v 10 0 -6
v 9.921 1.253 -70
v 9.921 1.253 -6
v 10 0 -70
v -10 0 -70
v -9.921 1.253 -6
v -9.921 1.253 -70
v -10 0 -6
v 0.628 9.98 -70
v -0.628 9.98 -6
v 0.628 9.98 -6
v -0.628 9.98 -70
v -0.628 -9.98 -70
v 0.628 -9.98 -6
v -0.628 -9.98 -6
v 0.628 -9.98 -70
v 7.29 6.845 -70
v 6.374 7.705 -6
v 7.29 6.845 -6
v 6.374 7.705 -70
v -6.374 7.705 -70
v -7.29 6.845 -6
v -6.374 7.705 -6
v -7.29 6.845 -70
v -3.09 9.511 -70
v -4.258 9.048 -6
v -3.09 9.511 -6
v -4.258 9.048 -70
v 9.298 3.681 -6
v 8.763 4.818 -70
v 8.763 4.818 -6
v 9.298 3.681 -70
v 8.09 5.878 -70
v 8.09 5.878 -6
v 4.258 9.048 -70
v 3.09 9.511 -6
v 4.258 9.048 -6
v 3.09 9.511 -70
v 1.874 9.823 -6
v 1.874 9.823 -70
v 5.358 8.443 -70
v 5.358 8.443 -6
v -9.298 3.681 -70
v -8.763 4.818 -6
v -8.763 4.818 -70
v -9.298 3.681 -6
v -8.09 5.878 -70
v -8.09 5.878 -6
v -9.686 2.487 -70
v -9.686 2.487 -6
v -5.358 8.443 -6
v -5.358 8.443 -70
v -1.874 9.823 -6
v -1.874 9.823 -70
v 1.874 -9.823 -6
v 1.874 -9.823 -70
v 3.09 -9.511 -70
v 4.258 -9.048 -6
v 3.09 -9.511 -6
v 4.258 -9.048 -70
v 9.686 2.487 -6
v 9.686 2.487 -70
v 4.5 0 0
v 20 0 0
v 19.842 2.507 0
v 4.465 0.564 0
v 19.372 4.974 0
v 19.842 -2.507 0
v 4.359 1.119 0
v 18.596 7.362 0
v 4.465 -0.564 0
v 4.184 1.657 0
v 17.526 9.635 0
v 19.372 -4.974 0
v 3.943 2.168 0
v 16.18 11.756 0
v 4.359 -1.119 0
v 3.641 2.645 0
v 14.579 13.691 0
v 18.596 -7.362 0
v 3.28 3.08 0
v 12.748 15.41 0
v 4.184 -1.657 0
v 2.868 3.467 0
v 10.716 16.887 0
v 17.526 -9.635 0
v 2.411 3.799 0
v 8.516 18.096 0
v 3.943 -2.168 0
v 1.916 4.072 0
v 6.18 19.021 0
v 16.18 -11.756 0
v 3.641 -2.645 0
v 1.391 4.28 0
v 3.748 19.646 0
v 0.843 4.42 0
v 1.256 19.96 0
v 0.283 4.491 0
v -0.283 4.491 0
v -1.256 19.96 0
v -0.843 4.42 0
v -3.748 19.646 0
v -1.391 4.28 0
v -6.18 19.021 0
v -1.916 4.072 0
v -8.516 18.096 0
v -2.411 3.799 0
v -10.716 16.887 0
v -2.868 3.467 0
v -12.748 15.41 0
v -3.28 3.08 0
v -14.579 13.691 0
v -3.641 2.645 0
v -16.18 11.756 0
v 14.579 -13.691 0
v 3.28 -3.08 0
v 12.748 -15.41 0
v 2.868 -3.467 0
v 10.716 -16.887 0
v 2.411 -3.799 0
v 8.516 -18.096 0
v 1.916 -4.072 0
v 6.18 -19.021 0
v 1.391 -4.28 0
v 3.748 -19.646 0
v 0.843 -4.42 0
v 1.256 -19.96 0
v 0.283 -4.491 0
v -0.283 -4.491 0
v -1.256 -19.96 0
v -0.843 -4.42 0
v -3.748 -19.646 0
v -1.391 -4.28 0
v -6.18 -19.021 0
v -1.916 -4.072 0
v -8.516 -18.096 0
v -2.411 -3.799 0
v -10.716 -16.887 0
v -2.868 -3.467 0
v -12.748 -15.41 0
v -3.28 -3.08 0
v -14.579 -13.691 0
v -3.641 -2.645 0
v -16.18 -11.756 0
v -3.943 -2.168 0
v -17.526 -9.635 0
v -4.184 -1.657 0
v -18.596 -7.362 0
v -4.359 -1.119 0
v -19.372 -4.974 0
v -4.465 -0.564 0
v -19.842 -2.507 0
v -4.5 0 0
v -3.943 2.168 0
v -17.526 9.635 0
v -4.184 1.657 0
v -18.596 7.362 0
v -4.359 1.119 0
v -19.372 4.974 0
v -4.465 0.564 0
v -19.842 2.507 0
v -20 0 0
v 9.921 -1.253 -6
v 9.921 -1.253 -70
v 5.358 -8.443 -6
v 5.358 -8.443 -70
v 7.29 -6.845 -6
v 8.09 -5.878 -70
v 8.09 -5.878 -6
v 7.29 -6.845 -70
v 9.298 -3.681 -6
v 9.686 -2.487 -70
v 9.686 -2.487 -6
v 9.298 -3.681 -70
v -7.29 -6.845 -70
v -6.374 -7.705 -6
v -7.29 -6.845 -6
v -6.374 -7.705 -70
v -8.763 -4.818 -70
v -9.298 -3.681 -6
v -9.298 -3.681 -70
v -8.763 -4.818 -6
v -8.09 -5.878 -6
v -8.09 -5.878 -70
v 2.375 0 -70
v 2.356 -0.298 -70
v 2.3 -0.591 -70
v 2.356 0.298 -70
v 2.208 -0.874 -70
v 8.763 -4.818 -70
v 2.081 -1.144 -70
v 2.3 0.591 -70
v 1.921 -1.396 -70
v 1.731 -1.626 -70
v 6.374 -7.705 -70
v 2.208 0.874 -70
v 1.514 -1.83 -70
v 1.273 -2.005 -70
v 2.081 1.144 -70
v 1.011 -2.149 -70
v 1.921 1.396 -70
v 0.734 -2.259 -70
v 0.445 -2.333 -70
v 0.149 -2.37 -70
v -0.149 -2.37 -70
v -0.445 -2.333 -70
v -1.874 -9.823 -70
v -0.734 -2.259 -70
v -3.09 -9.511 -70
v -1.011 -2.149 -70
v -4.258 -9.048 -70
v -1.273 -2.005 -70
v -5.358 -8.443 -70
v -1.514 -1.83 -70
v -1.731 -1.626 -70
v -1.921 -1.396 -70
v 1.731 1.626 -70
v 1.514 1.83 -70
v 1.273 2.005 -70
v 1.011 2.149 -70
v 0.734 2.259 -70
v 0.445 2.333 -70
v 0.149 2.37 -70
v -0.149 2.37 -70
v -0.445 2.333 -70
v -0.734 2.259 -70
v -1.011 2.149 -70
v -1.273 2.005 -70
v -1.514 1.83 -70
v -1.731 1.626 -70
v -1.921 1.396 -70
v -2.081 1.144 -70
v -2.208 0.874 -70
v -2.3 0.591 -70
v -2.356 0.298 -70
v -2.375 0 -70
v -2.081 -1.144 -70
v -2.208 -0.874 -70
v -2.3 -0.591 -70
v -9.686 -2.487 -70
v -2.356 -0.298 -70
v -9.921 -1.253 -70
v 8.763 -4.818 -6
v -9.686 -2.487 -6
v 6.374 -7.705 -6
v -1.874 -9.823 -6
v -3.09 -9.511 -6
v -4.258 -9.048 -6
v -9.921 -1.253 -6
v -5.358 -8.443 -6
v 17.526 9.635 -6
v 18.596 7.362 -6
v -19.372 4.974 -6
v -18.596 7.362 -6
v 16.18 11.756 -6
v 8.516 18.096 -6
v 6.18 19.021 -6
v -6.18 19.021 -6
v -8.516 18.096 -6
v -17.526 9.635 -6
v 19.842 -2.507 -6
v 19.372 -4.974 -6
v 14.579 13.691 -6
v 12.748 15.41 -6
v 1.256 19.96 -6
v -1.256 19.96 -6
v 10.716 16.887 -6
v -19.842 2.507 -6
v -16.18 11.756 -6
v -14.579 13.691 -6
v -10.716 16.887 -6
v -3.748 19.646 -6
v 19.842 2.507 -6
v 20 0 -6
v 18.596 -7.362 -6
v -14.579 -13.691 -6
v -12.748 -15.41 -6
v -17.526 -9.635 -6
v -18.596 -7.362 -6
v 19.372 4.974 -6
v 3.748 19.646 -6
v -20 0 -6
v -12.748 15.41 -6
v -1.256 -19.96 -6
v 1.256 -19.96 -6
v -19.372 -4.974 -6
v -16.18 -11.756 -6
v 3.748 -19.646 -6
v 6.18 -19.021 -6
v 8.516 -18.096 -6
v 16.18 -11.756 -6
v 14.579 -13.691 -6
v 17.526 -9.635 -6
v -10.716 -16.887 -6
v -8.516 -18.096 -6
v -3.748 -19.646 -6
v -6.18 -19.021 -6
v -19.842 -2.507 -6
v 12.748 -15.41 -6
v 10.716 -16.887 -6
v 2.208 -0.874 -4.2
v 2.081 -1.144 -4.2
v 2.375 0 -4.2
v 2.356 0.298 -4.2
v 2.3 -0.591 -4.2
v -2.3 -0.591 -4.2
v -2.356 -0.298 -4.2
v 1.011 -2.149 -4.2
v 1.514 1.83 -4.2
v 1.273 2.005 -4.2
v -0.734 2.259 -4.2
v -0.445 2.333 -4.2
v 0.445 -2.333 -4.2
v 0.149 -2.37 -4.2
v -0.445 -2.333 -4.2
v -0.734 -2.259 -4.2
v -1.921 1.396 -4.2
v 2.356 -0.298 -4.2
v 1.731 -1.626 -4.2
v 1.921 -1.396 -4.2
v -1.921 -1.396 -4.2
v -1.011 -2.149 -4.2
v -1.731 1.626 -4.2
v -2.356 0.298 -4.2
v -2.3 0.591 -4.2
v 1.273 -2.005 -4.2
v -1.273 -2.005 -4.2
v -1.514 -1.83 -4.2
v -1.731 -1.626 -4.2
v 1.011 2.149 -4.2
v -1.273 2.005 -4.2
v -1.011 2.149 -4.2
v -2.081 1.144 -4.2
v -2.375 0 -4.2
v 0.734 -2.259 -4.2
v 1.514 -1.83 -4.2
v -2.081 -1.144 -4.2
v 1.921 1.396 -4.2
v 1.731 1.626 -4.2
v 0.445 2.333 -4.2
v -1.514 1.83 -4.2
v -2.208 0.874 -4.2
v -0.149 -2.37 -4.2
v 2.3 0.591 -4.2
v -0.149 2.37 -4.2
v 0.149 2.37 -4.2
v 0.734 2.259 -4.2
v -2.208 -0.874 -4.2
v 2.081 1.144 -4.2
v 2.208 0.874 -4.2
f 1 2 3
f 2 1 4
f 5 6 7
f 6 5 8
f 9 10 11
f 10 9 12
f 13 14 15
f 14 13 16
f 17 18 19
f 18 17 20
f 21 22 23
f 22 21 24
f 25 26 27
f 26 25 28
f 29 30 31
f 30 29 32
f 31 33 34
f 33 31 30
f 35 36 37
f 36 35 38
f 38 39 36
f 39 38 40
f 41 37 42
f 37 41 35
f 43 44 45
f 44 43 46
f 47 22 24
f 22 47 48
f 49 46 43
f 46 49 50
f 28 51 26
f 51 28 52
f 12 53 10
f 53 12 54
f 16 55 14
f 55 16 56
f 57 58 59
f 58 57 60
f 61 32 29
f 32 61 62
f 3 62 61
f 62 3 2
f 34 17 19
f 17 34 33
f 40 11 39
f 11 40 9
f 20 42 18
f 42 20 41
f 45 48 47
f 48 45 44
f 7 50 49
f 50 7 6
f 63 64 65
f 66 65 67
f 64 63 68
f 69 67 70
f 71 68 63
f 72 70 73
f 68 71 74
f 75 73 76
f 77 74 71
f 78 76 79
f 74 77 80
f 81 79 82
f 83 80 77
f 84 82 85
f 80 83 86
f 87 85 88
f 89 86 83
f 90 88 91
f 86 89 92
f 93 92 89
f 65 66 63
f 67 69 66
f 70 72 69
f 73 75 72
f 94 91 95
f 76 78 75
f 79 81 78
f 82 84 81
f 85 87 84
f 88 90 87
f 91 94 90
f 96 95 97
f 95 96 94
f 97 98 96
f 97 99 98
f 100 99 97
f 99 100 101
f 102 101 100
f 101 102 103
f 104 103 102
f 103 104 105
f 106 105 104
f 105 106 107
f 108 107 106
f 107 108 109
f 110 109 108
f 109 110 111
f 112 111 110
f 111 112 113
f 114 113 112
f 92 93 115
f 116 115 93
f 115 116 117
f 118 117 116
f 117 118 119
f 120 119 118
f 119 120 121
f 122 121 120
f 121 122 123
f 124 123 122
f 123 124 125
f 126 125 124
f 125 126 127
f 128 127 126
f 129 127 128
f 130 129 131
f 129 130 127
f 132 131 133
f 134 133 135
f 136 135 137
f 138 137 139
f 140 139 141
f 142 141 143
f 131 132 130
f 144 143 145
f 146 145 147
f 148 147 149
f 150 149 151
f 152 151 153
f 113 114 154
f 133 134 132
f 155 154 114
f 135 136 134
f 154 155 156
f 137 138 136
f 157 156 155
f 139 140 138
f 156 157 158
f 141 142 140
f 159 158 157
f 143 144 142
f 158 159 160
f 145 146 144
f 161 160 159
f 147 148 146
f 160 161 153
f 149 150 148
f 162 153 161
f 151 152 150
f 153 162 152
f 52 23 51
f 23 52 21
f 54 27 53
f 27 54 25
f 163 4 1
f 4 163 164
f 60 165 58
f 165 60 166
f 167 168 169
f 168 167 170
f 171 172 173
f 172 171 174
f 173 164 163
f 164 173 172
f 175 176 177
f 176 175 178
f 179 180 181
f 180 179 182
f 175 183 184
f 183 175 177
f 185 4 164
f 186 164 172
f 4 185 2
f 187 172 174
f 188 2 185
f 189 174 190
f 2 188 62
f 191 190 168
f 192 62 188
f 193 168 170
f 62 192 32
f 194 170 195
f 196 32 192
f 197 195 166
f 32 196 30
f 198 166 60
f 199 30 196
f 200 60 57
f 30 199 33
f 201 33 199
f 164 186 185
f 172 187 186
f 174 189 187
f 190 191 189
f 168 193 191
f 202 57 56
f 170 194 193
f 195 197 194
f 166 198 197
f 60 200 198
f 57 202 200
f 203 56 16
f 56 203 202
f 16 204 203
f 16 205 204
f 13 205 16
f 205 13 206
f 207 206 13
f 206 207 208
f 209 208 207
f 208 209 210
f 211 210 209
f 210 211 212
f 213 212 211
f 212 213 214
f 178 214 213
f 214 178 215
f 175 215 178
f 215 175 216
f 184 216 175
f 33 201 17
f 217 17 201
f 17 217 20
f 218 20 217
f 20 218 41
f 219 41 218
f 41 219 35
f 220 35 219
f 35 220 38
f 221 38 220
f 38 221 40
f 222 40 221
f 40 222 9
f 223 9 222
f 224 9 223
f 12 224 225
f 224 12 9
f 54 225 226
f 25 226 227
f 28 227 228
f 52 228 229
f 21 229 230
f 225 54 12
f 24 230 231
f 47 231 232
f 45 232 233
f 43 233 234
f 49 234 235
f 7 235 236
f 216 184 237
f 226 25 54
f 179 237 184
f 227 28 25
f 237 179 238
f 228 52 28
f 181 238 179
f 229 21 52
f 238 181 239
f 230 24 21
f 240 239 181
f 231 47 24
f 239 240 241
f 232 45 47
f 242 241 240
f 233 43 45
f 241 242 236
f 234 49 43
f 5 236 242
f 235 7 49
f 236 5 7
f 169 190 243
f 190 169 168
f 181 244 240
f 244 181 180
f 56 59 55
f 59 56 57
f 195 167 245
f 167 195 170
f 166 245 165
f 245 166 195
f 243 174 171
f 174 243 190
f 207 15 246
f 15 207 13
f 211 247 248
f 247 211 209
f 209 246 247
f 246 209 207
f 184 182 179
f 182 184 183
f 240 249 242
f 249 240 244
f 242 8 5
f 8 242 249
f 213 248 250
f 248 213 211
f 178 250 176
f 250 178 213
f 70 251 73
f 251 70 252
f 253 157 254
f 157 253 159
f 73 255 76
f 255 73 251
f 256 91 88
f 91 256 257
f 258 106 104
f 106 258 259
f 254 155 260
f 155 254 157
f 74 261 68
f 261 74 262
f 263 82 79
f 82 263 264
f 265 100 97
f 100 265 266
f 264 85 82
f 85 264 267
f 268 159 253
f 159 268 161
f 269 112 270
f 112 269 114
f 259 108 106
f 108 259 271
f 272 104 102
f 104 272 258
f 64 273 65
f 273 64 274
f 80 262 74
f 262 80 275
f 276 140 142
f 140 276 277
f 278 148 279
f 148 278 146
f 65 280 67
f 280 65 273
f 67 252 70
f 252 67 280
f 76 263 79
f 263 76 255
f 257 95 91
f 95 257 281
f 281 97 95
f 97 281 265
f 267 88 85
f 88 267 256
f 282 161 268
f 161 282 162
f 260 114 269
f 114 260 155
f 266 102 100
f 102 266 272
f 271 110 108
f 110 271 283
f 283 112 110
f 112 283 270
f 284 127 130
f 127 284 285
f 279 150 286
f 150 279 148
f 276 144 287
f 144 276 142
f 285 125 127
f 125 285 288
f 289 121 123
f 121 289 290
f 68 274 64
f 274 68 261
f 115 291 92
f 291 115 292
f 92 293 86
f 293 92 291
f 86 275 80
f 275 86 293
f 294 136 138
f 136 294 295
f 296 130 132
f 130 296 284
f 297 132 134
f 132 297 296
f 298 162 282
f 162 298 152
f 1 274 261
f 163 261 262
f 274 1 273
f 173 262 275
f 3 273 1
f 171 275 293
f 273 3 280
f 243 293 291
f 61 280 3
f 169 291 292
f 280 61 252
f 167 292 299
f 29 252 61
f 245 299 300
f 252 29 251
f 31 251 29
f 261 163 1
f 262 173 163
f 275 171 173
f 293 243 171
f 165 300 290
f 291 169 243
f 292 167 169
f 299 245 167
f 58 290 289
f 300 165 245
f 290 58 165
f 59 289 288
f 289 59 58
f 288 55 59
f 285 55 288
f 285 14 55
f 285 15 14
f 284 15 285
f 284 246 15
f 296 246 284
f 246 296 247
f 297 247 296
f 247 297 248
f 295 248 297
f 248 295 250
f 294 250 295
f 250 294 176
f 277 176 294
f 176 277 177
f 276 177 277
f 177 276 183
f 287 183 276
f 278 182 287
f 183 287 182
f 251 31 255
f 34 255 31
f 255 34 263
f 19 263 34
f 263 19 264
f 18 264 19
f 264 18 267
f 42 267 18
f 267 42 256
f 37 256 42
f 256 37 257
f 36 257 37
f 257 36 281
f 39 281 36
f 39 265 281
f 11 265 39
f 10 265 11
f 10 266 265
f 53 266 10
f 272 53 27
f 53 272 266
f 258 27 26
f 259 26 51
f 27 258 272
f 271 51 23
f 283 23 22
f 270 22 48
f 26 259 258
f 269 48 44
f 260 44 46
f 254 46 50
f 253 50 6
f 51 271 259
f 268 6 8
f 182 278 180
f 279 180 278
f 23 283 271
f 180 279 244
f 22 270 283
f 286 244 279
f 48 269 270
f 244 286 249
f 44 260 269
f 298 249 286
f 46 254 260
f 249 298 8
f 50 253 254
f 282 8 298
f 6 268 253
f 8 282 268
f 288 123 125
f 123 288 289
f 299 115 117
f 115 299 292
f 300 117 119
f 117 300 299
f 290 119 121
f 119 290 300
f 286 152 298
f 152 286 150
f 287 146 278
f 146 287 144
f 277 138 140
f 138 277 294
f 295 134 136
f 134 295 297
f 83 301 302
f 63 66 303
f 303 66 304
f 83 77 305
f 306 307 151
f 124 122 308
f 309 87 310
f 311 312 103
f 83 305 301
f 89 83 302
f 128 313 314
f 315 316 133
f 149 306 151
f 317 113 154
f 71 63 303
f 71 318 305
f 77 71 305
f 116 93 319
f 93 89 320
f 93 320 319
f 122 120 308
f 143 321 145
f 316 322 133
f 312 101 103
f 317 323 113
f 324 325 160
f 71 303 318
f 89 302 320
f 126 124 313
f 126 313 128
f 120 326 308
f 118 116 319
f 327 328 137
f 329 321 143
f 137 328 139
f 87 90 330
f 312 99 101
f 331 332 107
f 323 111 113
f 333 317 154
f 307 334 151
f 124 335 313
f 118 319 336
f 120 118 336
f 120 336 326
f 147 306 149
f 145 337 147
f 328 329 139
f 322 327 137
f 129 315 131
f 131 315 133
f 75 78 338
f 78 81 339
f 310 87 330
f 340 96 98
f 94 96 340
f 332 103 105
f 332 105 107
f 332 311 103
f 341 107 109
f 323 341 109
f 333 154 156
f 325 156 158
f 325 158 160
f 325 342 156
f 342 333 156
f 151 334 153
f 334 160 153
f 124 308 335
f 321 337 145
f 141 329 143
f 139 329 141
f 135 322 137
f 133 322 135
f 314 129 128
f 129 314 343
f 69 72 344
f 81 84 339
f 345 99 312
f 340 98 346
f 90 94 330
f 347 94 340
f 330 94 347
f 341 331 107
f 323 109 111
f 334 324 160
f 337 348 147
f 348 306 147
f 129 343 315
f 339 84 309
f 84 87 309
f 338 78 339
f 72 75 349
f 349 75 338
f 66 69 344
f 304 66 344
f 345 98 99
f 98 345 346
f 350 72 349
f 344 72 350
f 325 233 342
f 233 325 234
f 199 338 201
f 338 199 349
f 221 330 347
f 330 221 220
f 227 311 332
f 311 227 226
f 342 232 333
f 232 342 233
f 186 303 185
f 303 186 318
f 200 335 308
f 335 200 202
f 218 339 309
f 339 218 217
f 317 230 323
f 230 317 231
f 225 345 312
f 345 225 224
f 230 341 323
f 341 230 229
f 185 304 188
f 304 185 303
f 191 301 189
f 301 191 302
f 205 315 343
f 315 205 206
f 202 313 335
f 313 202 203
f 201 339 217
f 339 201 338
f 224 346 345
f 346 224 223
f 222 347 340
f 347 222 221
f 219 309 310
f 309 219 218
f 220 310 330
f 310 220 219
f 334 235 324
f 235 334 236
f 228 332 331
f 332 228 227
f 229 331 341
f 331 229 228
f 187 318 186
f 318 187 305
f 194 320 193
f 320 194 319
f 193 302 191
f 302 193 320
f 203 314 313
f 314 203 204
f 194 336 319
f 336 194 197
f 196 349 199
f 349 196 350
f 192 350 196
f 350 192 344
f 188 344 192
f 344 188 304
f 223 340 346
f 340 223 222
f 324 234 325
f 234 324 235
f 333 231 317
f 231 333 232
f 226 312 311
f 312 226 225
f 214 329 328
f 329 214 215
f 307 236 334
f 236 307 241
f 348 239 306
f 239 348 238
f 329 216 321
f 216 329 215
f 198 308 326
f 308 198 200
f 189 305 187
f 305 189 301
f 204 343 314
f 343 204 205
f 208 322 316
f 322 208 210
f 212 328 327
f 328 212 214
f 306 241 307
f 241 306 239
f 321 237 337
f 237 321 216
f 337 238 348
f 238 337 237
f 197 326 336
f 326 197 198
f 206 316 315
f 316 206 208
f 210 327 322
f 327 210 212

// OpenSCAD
$fn = 50;


difference() {
	union() {
		translate(v = [0, 0, -70.0000000000]) {
			cylinder(h = 70, r = 10.0000000000);
		}
		translate(v = [0, 0, -6.0000000000]) {
			cylinder(h = 6, r = 20.0000000000);
		}
	}
	union() {
		translate(v = [0, 0, 0]) {
			rotate(a = [0, 0, 0]) {
				difference() {
					union() {
						#translate(v = [0, 0, -70.0000000000]) {
							cylinder(h = 70, r = 2.2500000000);
						}
						#translate(v = [0, 0, -4.2000000000]) {
							cylinder(h = 4.2000000000, r1 = 2.3750000000, r2 = 4.5000000000);
						}
						#translate(v = [0, 0, -70.0000000000]) {
							cylinder(h = 70, r = 2.3750000000);
						}
						#translate(v = [0, 0, -70.0000000000]) {
							cylinder(h = 70, r = 2.2500000000);
						}
					}
					union();
				}
			}
		}
	}
}
